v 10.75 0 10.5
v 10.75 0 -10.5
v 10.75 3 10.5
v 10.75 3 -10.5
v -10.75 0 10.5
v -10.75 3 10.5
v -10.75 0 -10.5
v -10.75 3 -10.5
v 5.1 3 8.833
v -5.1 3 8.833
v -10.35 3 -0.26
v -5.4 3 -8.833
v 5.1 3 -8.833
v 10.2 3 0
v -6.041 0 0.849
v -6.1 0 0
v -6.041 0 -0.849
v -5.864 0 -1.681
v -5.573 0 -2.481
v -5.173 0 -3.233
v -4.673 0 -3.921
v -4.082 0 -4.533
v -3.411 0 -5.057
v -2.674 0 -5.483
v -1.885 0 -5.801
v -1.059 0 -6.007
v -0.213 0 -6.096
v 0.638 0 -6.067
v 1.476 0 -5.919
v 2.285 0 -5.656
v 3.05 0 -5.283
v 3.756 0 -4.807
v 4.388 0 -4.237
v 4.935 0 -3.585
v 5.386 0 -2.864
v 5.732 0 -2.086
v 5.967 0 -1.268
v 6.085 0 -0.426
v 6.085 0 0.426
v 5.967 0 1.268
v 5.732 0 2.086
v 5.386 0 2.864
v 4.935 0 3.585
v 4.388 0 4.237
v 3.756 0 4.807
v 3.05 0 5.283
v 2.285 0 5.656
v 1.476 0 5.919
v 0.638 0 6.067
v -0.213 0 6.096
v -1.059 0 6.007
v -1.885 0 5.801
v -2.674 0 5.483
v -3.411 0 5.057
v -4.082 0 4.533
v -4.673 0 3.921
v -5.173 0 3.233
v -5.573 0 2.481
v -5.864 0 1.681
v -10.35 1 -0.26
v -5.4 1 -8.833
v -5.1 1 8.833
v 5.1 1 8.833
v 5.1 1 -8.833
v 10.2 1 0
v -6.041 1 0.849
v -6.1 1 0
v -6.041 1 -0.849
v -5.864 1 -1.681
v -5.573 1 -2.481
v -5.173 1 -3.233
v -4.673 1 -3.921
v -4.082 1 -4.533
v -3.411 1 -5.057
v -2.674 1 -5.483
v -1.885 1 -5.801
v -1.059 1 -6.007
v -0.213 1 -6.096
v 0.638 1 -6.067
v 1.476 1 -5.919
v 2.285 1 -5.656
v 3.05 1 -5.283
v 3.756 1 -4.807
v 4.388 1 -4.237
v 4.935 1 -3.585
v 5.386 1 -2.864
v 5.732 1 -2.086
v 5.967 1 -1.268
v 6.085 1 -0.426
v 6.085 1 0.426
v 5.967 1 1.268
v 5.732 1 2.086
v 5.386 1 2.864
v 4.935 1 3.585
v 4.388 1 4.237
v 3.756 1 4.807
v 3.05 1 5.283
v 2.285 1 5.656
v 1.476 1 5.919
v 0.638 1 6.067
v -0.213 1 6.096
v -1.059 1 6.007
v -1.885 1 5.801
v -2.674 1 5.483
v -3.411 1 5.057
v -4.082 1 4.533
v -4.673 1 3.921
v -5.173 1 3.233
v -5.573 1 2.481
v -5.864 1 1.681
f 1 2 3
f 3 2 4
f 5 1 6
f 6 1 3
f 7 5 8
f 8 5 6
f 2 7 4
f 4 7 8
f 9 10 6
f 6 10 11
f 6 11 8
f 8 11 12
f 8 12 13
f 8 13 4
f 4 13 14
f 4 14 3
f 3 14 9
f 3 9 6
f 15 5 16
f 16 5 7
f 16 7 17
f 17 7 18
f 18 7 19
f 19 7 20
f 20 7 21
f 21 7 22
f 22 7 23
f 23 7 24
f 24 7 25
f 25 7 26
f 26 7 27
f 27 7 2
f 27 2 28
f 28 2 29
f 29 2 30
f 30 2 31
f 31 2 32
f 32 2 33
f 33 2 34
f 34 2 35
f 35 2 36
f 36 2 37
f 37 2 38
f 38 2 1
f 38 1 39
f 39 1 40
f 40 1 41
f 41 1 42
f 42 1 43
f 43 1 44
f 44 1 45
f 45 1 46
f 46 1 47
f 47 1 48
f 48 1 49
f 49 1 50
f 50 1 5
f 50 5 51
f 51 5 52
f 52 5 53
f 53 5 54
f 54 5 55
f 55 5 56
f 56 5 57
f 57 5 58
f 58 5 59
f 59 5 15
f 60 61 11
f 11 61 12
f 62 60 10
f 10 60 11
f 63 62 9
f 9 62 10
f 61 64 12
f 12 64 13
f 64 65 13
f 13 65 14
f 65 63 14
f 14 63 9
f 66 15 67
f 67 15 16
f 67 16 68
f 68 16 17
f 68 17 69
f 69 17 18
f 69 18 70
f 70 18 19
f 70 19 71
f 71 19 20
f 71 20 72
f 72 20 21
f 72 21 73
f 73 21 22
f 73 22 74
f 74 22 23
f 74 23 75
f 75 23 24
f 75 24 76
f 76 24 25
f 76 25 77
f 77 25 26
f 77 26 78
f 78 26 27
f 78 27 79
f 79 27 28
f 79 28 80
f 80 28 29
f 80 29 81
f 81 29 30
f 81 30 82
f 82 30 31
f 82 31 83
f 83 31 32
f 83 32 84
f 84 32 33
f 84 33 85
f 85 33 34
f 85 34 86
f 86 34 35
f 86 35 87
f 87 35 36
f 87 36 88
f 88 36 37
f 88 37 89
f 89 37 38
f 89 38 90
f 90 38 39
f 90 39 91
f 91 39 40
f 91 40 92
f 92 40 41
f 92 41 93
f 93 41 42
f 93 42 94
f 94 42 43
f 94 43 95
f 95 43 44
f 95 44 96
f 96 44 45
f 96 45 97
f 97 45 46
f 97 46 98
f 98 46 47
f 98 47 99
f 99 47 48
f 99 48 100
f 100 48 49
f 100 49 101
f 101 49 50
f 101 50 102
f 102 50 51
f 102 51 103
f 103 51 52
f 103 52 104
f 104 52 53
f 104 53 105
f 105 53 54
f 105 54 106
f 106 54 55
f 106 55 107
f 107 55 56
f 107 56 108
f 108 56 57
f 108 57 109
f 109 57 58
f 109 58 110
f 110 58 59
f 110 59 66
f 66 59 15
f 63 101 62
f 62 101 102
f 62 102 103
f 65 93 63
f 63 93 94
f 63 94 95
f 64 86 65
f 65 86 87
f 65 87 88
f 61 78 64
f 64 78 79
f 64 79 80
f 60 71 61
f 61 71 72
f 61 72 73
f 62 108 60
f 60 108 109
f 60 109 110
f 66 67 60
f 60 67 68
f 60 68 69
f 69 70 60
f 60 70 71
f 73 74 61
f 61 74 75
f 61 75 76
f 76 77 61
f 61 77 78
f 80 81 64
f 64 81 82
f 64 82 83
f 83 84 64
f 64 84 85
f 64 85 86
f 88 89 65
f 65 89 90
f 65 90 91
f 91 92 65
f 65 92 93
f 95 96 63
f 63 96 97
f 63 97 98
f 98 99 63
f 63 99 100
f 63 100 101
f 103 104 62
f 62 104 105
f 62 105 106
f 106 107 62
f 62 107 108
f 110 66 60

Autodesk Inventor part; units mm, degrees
ref_plane "YZ Plane" through (0, 0, 0) normal (1, 0, 0) x (0, 1, 0)
ref_plane "XZ Plane" through (0, 0, 0) normal (0, 1, 0) x (-1, 0, 0)
ref_plane "XY Plane" through (0, 0, 0) normal (0, 0, 1) x (1, 0, 0)
sketch "Sketch1" plane through (0, 0, 0) normal (0, 1, 0) x (-1, 0, 0)
  line L0 (-10.75, 10.5) -> (10.75, 10.5)
  line L1 (10.75, 10.5) -> (10.75, -10.5)
  line L2 (10.75, -10.5) -> (-10.75, -10.5)
  line L3 (-10.75, -10.5) -> (-10.75, 10.5)
  line L4 (-10.75, 10.5) -> (10.75, -10.5) construction
  line L5 (10.75, 10.5) -> (-10.75, -10.5) construction
  circle A0 centre (0, 0) radius 6.1
  line L6 (0, 0) -> (9, 0) construction
  line L7 (0, 0) -> (9, 0) construction
  line L8 (0, 0) -> (10.2, 0) construction
  line L9 (0, 0) -> (9, 0) construction
  line L10 (0, 0) -> (10.2, 0)
  line L11 (0, 0) -> (5.1, 8.8335) construction
  line L12 (0, 0) -> (-5.1, 8.8335) construction
  line L13 (0, 0) -> (-10.2, 0) construction
  line L14 (0, 0) -> (-5.1, -8.8335) construction
  line L15 (0, 0) -> (5.1, -8.8335) construction
  line L16 (10.35, -0.2598) -> (5.4, -8.8335)
  line L17 (5.4, -8.8335) -> (-5.1, -8.8335)
  line L18 (-5.1, -8.8335) -> (-10.2, 0)
  line L19 (-10.2, 0) -> (-5.1, 8.8335)
  line L20 (-5.1, 8.8335) -> (5.1, 8.8335)
  line L21 (5.1, 8.8335) -> (10.35, -0.2598)
  dimension "d0" = 21.5
  dimension "d1" = 21
  dimension "d2" = 12.2
  dimension "d28" = 10.2
  dimension "d31" = 360
extrude "Extrusion1" add sketch "Sketch1" along normal blind 3 contours L0 L1 L2 L3 | A0 | L21 L16 L17 L18 L19 L20
extrude "Extrusion6" cut sketch "Sketch1" along normal blind 12.2 contours A0 | L21 L16 L17 L18 L19 L20
extrude "Extrusion7" add sketch "Sketch1" along normal blind 1 contours L21 L16 L17 L18 L19 L20
equation "\"d33\" = d2"
properties part number "ScrewTest"
